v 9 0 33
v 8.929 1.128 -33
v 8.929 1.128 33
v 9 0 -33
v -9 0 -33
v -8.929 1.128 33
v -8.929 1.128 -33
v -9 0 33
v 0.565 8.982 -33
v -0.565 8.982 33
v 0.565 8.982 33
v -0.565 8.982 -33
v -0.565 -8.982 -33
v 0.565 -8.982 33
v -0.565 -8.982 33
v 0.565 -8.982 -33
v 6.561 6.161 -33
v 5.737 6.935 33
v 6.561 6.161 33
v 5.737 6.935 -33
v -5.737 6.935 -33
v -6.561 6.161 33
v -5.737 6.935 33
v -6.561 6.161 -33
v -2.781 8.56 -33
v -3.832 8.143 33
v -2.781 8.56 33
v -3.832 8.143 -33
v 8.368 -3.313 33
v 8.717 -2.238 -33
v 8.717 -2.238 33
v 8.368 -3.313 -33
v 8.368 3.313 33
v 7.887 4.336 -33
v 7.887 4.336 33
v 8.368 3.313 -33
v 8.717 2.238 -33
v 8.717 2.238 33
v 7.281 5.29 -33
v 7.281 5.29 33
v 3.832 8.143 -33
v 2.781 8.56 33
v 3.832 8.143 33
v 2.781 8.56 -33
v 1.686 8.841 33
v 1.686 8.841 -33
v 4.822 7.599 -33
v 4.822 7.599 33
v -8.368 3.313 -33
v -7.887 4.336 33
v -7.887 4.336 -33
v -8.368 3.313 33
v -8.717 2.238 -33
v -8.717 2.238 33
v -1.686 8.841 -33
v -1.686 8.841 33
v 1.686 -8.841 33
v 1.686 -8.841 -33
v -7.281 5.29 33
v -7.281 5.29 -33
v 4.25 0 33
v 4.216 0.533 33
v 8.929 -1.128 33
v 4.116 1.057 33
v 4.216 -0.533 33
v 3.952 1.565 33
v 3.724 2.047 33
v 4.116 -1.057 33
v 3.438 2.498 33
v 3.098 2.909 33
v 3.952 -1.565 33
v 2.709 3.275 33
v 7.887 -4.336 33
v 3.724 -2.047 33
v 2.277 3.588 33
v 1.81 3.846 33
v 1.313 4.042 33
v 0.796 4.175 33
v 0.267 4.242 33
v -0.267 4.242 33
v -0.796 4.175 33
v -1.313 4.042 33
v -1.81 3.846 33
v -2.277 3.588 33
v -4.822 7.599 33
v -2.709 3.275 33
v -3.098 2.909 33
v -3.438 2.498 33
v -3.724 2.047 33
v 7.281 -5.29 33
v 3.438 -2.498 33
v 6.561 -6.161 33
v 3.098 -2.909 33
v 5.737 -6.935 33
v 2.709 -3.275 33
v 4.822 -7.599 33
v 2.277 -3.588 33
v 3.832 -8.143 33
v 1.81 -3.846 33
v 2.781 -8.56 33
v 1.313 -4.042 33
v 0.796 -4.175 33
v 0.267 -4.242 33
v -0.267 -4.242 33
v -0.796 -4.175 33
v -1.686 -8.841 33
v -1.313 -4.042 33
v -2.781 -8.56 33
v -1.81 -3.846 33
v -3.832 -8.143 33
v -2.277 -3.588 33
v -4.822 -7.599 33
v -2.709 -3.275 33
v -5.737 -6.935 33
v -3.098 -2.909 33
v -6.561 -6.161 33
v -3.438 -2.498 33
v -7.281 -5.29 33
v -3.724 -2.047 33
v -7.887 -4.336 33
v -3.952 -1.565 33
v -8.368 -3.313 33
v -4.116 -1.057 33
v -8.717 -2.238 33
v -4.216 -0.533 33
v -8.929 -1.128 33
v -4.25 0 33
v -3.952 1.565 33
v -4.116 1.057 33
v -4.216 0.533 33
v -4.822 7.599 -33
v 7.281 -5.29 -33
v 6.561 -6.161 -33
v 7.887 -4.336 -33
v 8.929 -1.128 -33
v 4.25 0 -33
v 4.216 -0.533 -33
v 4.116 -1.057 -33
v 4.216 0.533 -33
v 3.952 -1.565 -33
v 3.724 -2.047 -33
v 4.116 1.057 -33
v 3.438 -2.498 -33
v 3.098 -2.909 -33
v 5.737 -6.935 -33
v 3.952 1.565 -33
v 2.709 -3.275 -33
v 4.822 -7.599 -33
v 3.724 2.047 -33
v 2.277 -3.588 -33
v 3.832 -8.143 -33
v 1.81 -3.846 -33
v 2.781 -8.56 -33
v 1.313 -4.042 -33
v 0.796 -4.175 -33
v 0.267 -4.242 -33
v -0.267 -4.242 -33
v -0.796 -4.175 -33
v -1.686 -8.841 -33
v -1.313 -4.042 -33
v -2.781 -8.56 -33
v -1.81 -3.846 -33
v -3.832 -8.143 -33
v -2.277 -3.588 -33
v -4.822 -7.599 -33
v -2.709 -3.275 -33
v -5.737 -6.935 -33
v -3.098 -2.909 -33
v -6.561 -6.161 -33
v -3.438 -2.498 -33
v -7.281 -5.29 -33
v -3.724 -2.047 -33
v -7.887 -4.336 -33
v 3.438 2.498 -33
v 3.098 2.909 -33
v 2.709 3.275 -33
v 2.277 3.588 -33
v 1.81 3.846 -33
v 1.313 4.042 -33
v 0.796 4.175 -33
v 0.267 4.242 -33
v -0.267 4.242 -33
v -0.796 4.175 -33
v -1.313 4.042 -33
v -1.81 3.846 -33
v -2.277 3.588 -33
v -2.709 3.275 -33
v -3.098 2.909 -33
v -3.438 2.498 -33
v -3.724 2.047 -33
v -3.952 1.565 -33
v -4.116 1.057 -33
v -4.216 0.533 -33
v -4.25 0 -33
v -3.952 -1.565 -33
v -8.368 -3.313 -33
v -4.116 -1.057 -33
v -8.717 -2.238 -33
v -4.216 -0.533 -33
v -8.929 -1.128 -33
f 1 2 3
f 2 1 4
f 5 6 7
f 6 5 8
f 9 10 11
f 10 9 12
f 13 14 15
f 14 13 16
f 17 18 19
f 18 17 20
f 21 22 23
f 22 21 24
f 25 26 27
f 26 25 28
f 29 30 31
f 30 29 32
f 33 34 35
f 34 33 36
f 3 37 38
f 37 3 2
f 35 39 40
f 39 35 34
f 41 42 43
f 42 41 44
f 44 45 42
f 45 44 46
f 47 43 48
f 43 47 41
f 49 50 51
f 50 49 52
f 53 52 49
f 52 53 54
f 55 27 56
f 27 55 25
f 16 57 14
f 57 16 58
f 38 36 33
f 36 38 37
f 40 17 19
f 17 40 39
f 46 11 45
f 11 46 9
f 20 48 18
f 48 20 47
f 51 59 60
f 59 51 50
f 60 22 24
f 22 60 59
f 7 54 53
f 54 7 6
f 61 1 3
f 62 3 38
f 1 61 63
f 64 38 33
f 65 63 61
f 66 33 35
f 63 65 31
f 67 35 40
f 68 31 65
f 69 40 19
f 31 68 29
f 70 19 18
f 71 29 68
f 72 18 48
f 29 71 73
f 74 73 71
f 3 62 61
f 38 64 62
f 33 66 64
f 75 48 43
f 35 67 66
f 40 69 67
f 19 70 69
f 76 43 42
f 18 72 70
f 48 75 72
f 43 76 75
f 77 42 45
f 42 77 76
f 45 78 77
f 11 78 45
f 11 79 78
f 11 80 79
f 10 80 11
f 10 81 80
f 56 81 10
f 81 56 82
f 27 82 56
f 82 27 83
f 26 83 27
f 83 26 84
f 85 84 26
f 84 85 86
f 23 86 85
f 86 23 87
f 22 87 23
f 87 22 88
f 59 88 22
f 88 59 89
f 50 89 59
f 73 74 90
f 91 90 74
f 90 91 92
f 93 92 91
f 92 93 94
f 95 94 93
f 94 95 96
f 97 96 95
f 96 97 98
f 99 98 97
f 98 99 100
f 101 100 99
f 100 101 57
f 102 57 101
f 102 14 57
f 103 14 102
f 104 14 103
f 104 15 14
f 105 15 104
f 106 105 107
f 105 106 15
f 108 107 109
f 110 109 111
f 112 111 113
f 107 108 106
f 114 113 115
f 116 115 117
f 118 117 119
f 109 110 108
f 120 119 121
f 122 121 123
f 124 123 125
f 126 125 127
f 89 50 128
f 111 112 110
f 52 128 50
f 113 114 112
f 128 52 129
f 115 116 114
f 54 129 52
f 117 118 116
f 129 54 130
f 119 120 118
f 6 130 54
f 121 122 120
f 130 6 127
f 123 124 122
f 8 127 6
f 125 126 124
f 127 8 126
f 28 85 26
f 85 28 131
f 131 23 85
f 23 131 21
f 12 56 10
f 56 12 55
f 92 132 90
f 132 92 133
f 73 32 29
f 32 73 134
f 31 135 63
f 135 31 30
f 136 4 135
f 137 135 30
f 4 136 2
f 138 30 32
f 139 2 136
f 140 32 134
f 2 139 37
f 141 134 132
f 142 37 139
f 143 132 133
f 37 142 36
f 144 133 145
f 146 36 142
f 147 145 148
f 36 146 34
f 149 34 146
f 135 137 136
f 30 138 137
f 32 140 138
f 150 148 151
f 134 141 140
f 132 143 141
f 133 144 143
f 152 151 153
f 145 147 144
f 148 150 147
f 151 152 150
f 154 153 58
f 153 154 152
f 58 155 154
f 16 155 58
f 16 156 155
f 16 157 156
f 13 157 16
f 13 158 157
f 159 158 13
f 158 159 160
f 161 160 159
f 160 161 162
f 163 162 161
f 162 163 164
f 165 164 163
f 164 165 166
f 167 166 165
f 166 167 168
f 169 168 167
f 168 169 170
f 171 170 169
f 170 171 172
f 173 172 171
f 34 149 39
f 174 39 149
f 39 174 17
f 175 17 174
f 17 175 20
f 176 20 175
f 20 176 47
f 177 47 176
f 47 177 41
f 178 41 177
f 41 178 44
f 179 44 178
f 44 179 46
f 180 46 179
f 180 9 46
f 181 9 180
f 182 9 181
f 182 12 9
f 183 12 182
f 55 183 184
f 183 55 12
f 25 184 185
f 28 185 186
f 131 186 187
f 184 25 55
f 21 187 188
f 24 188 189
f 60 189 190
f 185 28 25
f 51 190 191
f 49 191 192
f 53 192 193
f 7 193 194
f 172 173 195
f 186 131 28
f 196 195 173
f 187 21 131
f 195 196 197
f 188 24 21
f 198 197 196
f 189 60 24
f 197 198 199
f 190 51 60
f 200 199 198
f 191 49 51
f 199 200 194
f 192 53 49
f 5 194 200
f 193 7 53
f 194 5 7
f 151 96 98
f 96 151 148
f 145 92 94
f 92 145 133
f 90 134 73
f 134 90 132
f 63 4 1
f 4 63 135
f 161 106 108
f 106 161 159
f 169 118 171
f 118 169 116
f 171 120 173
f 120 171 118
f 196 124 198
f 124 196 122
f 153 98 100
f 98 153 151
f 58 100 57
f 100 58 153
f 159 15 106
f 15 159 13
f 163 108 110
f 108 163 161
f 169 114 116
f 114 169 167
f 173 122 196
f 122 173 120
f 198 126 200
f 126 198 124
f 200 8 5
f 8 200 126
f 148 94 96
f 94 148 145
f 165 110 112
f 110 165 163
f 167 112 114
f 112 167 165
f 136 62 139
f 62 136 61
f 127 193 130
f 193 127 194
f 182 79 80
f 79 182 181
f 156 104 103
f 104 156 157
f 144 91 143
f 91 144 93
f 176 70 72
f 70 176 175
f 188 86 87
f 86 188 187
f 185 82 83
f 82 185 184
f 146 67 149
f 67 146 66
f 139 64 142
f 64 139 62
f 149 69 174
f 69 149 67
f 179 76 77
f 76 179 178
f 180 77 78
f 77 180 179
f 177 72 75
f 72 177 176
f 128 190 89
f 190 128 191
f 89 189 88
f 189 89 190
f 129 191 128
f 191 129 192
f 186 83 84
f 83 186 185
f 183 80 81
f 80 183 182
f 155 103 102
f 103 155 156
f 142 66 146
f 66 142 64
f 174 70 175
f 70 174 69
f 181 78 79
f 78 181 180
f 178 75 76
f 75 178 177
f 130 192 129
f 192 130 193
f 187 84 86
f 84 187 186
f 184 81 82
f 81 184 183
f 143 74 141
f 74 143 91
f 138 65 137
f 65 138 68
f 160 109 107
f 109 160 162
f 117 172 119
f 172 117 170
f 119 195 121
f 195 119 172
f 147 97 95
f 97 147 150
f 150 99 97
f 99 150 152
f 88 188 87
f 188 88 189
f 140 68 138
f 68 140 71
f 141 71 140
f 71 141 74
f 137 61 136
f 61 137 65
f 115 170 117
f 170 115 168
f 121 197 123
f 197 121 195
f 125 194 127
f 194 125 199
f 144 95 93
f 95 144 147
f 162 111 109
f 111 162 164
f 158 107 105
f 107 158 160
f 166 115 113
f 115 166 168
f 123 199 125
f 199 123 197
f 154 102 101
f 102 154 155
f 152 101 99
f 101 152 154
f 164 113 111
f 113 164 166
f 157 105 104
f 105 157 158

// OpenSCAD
$fn = 50;


difference() {
	union() {
		translate(v = [0, 0, -33.0000000000]) {
			cylinder(h = 66, r = 9.0000000000);
		}
	}
	union() {
		translate(v = [0, 0, -100.0000000000]) {
			cylinder(h = 200, r = 4.2500000000);
		}
	}
}
